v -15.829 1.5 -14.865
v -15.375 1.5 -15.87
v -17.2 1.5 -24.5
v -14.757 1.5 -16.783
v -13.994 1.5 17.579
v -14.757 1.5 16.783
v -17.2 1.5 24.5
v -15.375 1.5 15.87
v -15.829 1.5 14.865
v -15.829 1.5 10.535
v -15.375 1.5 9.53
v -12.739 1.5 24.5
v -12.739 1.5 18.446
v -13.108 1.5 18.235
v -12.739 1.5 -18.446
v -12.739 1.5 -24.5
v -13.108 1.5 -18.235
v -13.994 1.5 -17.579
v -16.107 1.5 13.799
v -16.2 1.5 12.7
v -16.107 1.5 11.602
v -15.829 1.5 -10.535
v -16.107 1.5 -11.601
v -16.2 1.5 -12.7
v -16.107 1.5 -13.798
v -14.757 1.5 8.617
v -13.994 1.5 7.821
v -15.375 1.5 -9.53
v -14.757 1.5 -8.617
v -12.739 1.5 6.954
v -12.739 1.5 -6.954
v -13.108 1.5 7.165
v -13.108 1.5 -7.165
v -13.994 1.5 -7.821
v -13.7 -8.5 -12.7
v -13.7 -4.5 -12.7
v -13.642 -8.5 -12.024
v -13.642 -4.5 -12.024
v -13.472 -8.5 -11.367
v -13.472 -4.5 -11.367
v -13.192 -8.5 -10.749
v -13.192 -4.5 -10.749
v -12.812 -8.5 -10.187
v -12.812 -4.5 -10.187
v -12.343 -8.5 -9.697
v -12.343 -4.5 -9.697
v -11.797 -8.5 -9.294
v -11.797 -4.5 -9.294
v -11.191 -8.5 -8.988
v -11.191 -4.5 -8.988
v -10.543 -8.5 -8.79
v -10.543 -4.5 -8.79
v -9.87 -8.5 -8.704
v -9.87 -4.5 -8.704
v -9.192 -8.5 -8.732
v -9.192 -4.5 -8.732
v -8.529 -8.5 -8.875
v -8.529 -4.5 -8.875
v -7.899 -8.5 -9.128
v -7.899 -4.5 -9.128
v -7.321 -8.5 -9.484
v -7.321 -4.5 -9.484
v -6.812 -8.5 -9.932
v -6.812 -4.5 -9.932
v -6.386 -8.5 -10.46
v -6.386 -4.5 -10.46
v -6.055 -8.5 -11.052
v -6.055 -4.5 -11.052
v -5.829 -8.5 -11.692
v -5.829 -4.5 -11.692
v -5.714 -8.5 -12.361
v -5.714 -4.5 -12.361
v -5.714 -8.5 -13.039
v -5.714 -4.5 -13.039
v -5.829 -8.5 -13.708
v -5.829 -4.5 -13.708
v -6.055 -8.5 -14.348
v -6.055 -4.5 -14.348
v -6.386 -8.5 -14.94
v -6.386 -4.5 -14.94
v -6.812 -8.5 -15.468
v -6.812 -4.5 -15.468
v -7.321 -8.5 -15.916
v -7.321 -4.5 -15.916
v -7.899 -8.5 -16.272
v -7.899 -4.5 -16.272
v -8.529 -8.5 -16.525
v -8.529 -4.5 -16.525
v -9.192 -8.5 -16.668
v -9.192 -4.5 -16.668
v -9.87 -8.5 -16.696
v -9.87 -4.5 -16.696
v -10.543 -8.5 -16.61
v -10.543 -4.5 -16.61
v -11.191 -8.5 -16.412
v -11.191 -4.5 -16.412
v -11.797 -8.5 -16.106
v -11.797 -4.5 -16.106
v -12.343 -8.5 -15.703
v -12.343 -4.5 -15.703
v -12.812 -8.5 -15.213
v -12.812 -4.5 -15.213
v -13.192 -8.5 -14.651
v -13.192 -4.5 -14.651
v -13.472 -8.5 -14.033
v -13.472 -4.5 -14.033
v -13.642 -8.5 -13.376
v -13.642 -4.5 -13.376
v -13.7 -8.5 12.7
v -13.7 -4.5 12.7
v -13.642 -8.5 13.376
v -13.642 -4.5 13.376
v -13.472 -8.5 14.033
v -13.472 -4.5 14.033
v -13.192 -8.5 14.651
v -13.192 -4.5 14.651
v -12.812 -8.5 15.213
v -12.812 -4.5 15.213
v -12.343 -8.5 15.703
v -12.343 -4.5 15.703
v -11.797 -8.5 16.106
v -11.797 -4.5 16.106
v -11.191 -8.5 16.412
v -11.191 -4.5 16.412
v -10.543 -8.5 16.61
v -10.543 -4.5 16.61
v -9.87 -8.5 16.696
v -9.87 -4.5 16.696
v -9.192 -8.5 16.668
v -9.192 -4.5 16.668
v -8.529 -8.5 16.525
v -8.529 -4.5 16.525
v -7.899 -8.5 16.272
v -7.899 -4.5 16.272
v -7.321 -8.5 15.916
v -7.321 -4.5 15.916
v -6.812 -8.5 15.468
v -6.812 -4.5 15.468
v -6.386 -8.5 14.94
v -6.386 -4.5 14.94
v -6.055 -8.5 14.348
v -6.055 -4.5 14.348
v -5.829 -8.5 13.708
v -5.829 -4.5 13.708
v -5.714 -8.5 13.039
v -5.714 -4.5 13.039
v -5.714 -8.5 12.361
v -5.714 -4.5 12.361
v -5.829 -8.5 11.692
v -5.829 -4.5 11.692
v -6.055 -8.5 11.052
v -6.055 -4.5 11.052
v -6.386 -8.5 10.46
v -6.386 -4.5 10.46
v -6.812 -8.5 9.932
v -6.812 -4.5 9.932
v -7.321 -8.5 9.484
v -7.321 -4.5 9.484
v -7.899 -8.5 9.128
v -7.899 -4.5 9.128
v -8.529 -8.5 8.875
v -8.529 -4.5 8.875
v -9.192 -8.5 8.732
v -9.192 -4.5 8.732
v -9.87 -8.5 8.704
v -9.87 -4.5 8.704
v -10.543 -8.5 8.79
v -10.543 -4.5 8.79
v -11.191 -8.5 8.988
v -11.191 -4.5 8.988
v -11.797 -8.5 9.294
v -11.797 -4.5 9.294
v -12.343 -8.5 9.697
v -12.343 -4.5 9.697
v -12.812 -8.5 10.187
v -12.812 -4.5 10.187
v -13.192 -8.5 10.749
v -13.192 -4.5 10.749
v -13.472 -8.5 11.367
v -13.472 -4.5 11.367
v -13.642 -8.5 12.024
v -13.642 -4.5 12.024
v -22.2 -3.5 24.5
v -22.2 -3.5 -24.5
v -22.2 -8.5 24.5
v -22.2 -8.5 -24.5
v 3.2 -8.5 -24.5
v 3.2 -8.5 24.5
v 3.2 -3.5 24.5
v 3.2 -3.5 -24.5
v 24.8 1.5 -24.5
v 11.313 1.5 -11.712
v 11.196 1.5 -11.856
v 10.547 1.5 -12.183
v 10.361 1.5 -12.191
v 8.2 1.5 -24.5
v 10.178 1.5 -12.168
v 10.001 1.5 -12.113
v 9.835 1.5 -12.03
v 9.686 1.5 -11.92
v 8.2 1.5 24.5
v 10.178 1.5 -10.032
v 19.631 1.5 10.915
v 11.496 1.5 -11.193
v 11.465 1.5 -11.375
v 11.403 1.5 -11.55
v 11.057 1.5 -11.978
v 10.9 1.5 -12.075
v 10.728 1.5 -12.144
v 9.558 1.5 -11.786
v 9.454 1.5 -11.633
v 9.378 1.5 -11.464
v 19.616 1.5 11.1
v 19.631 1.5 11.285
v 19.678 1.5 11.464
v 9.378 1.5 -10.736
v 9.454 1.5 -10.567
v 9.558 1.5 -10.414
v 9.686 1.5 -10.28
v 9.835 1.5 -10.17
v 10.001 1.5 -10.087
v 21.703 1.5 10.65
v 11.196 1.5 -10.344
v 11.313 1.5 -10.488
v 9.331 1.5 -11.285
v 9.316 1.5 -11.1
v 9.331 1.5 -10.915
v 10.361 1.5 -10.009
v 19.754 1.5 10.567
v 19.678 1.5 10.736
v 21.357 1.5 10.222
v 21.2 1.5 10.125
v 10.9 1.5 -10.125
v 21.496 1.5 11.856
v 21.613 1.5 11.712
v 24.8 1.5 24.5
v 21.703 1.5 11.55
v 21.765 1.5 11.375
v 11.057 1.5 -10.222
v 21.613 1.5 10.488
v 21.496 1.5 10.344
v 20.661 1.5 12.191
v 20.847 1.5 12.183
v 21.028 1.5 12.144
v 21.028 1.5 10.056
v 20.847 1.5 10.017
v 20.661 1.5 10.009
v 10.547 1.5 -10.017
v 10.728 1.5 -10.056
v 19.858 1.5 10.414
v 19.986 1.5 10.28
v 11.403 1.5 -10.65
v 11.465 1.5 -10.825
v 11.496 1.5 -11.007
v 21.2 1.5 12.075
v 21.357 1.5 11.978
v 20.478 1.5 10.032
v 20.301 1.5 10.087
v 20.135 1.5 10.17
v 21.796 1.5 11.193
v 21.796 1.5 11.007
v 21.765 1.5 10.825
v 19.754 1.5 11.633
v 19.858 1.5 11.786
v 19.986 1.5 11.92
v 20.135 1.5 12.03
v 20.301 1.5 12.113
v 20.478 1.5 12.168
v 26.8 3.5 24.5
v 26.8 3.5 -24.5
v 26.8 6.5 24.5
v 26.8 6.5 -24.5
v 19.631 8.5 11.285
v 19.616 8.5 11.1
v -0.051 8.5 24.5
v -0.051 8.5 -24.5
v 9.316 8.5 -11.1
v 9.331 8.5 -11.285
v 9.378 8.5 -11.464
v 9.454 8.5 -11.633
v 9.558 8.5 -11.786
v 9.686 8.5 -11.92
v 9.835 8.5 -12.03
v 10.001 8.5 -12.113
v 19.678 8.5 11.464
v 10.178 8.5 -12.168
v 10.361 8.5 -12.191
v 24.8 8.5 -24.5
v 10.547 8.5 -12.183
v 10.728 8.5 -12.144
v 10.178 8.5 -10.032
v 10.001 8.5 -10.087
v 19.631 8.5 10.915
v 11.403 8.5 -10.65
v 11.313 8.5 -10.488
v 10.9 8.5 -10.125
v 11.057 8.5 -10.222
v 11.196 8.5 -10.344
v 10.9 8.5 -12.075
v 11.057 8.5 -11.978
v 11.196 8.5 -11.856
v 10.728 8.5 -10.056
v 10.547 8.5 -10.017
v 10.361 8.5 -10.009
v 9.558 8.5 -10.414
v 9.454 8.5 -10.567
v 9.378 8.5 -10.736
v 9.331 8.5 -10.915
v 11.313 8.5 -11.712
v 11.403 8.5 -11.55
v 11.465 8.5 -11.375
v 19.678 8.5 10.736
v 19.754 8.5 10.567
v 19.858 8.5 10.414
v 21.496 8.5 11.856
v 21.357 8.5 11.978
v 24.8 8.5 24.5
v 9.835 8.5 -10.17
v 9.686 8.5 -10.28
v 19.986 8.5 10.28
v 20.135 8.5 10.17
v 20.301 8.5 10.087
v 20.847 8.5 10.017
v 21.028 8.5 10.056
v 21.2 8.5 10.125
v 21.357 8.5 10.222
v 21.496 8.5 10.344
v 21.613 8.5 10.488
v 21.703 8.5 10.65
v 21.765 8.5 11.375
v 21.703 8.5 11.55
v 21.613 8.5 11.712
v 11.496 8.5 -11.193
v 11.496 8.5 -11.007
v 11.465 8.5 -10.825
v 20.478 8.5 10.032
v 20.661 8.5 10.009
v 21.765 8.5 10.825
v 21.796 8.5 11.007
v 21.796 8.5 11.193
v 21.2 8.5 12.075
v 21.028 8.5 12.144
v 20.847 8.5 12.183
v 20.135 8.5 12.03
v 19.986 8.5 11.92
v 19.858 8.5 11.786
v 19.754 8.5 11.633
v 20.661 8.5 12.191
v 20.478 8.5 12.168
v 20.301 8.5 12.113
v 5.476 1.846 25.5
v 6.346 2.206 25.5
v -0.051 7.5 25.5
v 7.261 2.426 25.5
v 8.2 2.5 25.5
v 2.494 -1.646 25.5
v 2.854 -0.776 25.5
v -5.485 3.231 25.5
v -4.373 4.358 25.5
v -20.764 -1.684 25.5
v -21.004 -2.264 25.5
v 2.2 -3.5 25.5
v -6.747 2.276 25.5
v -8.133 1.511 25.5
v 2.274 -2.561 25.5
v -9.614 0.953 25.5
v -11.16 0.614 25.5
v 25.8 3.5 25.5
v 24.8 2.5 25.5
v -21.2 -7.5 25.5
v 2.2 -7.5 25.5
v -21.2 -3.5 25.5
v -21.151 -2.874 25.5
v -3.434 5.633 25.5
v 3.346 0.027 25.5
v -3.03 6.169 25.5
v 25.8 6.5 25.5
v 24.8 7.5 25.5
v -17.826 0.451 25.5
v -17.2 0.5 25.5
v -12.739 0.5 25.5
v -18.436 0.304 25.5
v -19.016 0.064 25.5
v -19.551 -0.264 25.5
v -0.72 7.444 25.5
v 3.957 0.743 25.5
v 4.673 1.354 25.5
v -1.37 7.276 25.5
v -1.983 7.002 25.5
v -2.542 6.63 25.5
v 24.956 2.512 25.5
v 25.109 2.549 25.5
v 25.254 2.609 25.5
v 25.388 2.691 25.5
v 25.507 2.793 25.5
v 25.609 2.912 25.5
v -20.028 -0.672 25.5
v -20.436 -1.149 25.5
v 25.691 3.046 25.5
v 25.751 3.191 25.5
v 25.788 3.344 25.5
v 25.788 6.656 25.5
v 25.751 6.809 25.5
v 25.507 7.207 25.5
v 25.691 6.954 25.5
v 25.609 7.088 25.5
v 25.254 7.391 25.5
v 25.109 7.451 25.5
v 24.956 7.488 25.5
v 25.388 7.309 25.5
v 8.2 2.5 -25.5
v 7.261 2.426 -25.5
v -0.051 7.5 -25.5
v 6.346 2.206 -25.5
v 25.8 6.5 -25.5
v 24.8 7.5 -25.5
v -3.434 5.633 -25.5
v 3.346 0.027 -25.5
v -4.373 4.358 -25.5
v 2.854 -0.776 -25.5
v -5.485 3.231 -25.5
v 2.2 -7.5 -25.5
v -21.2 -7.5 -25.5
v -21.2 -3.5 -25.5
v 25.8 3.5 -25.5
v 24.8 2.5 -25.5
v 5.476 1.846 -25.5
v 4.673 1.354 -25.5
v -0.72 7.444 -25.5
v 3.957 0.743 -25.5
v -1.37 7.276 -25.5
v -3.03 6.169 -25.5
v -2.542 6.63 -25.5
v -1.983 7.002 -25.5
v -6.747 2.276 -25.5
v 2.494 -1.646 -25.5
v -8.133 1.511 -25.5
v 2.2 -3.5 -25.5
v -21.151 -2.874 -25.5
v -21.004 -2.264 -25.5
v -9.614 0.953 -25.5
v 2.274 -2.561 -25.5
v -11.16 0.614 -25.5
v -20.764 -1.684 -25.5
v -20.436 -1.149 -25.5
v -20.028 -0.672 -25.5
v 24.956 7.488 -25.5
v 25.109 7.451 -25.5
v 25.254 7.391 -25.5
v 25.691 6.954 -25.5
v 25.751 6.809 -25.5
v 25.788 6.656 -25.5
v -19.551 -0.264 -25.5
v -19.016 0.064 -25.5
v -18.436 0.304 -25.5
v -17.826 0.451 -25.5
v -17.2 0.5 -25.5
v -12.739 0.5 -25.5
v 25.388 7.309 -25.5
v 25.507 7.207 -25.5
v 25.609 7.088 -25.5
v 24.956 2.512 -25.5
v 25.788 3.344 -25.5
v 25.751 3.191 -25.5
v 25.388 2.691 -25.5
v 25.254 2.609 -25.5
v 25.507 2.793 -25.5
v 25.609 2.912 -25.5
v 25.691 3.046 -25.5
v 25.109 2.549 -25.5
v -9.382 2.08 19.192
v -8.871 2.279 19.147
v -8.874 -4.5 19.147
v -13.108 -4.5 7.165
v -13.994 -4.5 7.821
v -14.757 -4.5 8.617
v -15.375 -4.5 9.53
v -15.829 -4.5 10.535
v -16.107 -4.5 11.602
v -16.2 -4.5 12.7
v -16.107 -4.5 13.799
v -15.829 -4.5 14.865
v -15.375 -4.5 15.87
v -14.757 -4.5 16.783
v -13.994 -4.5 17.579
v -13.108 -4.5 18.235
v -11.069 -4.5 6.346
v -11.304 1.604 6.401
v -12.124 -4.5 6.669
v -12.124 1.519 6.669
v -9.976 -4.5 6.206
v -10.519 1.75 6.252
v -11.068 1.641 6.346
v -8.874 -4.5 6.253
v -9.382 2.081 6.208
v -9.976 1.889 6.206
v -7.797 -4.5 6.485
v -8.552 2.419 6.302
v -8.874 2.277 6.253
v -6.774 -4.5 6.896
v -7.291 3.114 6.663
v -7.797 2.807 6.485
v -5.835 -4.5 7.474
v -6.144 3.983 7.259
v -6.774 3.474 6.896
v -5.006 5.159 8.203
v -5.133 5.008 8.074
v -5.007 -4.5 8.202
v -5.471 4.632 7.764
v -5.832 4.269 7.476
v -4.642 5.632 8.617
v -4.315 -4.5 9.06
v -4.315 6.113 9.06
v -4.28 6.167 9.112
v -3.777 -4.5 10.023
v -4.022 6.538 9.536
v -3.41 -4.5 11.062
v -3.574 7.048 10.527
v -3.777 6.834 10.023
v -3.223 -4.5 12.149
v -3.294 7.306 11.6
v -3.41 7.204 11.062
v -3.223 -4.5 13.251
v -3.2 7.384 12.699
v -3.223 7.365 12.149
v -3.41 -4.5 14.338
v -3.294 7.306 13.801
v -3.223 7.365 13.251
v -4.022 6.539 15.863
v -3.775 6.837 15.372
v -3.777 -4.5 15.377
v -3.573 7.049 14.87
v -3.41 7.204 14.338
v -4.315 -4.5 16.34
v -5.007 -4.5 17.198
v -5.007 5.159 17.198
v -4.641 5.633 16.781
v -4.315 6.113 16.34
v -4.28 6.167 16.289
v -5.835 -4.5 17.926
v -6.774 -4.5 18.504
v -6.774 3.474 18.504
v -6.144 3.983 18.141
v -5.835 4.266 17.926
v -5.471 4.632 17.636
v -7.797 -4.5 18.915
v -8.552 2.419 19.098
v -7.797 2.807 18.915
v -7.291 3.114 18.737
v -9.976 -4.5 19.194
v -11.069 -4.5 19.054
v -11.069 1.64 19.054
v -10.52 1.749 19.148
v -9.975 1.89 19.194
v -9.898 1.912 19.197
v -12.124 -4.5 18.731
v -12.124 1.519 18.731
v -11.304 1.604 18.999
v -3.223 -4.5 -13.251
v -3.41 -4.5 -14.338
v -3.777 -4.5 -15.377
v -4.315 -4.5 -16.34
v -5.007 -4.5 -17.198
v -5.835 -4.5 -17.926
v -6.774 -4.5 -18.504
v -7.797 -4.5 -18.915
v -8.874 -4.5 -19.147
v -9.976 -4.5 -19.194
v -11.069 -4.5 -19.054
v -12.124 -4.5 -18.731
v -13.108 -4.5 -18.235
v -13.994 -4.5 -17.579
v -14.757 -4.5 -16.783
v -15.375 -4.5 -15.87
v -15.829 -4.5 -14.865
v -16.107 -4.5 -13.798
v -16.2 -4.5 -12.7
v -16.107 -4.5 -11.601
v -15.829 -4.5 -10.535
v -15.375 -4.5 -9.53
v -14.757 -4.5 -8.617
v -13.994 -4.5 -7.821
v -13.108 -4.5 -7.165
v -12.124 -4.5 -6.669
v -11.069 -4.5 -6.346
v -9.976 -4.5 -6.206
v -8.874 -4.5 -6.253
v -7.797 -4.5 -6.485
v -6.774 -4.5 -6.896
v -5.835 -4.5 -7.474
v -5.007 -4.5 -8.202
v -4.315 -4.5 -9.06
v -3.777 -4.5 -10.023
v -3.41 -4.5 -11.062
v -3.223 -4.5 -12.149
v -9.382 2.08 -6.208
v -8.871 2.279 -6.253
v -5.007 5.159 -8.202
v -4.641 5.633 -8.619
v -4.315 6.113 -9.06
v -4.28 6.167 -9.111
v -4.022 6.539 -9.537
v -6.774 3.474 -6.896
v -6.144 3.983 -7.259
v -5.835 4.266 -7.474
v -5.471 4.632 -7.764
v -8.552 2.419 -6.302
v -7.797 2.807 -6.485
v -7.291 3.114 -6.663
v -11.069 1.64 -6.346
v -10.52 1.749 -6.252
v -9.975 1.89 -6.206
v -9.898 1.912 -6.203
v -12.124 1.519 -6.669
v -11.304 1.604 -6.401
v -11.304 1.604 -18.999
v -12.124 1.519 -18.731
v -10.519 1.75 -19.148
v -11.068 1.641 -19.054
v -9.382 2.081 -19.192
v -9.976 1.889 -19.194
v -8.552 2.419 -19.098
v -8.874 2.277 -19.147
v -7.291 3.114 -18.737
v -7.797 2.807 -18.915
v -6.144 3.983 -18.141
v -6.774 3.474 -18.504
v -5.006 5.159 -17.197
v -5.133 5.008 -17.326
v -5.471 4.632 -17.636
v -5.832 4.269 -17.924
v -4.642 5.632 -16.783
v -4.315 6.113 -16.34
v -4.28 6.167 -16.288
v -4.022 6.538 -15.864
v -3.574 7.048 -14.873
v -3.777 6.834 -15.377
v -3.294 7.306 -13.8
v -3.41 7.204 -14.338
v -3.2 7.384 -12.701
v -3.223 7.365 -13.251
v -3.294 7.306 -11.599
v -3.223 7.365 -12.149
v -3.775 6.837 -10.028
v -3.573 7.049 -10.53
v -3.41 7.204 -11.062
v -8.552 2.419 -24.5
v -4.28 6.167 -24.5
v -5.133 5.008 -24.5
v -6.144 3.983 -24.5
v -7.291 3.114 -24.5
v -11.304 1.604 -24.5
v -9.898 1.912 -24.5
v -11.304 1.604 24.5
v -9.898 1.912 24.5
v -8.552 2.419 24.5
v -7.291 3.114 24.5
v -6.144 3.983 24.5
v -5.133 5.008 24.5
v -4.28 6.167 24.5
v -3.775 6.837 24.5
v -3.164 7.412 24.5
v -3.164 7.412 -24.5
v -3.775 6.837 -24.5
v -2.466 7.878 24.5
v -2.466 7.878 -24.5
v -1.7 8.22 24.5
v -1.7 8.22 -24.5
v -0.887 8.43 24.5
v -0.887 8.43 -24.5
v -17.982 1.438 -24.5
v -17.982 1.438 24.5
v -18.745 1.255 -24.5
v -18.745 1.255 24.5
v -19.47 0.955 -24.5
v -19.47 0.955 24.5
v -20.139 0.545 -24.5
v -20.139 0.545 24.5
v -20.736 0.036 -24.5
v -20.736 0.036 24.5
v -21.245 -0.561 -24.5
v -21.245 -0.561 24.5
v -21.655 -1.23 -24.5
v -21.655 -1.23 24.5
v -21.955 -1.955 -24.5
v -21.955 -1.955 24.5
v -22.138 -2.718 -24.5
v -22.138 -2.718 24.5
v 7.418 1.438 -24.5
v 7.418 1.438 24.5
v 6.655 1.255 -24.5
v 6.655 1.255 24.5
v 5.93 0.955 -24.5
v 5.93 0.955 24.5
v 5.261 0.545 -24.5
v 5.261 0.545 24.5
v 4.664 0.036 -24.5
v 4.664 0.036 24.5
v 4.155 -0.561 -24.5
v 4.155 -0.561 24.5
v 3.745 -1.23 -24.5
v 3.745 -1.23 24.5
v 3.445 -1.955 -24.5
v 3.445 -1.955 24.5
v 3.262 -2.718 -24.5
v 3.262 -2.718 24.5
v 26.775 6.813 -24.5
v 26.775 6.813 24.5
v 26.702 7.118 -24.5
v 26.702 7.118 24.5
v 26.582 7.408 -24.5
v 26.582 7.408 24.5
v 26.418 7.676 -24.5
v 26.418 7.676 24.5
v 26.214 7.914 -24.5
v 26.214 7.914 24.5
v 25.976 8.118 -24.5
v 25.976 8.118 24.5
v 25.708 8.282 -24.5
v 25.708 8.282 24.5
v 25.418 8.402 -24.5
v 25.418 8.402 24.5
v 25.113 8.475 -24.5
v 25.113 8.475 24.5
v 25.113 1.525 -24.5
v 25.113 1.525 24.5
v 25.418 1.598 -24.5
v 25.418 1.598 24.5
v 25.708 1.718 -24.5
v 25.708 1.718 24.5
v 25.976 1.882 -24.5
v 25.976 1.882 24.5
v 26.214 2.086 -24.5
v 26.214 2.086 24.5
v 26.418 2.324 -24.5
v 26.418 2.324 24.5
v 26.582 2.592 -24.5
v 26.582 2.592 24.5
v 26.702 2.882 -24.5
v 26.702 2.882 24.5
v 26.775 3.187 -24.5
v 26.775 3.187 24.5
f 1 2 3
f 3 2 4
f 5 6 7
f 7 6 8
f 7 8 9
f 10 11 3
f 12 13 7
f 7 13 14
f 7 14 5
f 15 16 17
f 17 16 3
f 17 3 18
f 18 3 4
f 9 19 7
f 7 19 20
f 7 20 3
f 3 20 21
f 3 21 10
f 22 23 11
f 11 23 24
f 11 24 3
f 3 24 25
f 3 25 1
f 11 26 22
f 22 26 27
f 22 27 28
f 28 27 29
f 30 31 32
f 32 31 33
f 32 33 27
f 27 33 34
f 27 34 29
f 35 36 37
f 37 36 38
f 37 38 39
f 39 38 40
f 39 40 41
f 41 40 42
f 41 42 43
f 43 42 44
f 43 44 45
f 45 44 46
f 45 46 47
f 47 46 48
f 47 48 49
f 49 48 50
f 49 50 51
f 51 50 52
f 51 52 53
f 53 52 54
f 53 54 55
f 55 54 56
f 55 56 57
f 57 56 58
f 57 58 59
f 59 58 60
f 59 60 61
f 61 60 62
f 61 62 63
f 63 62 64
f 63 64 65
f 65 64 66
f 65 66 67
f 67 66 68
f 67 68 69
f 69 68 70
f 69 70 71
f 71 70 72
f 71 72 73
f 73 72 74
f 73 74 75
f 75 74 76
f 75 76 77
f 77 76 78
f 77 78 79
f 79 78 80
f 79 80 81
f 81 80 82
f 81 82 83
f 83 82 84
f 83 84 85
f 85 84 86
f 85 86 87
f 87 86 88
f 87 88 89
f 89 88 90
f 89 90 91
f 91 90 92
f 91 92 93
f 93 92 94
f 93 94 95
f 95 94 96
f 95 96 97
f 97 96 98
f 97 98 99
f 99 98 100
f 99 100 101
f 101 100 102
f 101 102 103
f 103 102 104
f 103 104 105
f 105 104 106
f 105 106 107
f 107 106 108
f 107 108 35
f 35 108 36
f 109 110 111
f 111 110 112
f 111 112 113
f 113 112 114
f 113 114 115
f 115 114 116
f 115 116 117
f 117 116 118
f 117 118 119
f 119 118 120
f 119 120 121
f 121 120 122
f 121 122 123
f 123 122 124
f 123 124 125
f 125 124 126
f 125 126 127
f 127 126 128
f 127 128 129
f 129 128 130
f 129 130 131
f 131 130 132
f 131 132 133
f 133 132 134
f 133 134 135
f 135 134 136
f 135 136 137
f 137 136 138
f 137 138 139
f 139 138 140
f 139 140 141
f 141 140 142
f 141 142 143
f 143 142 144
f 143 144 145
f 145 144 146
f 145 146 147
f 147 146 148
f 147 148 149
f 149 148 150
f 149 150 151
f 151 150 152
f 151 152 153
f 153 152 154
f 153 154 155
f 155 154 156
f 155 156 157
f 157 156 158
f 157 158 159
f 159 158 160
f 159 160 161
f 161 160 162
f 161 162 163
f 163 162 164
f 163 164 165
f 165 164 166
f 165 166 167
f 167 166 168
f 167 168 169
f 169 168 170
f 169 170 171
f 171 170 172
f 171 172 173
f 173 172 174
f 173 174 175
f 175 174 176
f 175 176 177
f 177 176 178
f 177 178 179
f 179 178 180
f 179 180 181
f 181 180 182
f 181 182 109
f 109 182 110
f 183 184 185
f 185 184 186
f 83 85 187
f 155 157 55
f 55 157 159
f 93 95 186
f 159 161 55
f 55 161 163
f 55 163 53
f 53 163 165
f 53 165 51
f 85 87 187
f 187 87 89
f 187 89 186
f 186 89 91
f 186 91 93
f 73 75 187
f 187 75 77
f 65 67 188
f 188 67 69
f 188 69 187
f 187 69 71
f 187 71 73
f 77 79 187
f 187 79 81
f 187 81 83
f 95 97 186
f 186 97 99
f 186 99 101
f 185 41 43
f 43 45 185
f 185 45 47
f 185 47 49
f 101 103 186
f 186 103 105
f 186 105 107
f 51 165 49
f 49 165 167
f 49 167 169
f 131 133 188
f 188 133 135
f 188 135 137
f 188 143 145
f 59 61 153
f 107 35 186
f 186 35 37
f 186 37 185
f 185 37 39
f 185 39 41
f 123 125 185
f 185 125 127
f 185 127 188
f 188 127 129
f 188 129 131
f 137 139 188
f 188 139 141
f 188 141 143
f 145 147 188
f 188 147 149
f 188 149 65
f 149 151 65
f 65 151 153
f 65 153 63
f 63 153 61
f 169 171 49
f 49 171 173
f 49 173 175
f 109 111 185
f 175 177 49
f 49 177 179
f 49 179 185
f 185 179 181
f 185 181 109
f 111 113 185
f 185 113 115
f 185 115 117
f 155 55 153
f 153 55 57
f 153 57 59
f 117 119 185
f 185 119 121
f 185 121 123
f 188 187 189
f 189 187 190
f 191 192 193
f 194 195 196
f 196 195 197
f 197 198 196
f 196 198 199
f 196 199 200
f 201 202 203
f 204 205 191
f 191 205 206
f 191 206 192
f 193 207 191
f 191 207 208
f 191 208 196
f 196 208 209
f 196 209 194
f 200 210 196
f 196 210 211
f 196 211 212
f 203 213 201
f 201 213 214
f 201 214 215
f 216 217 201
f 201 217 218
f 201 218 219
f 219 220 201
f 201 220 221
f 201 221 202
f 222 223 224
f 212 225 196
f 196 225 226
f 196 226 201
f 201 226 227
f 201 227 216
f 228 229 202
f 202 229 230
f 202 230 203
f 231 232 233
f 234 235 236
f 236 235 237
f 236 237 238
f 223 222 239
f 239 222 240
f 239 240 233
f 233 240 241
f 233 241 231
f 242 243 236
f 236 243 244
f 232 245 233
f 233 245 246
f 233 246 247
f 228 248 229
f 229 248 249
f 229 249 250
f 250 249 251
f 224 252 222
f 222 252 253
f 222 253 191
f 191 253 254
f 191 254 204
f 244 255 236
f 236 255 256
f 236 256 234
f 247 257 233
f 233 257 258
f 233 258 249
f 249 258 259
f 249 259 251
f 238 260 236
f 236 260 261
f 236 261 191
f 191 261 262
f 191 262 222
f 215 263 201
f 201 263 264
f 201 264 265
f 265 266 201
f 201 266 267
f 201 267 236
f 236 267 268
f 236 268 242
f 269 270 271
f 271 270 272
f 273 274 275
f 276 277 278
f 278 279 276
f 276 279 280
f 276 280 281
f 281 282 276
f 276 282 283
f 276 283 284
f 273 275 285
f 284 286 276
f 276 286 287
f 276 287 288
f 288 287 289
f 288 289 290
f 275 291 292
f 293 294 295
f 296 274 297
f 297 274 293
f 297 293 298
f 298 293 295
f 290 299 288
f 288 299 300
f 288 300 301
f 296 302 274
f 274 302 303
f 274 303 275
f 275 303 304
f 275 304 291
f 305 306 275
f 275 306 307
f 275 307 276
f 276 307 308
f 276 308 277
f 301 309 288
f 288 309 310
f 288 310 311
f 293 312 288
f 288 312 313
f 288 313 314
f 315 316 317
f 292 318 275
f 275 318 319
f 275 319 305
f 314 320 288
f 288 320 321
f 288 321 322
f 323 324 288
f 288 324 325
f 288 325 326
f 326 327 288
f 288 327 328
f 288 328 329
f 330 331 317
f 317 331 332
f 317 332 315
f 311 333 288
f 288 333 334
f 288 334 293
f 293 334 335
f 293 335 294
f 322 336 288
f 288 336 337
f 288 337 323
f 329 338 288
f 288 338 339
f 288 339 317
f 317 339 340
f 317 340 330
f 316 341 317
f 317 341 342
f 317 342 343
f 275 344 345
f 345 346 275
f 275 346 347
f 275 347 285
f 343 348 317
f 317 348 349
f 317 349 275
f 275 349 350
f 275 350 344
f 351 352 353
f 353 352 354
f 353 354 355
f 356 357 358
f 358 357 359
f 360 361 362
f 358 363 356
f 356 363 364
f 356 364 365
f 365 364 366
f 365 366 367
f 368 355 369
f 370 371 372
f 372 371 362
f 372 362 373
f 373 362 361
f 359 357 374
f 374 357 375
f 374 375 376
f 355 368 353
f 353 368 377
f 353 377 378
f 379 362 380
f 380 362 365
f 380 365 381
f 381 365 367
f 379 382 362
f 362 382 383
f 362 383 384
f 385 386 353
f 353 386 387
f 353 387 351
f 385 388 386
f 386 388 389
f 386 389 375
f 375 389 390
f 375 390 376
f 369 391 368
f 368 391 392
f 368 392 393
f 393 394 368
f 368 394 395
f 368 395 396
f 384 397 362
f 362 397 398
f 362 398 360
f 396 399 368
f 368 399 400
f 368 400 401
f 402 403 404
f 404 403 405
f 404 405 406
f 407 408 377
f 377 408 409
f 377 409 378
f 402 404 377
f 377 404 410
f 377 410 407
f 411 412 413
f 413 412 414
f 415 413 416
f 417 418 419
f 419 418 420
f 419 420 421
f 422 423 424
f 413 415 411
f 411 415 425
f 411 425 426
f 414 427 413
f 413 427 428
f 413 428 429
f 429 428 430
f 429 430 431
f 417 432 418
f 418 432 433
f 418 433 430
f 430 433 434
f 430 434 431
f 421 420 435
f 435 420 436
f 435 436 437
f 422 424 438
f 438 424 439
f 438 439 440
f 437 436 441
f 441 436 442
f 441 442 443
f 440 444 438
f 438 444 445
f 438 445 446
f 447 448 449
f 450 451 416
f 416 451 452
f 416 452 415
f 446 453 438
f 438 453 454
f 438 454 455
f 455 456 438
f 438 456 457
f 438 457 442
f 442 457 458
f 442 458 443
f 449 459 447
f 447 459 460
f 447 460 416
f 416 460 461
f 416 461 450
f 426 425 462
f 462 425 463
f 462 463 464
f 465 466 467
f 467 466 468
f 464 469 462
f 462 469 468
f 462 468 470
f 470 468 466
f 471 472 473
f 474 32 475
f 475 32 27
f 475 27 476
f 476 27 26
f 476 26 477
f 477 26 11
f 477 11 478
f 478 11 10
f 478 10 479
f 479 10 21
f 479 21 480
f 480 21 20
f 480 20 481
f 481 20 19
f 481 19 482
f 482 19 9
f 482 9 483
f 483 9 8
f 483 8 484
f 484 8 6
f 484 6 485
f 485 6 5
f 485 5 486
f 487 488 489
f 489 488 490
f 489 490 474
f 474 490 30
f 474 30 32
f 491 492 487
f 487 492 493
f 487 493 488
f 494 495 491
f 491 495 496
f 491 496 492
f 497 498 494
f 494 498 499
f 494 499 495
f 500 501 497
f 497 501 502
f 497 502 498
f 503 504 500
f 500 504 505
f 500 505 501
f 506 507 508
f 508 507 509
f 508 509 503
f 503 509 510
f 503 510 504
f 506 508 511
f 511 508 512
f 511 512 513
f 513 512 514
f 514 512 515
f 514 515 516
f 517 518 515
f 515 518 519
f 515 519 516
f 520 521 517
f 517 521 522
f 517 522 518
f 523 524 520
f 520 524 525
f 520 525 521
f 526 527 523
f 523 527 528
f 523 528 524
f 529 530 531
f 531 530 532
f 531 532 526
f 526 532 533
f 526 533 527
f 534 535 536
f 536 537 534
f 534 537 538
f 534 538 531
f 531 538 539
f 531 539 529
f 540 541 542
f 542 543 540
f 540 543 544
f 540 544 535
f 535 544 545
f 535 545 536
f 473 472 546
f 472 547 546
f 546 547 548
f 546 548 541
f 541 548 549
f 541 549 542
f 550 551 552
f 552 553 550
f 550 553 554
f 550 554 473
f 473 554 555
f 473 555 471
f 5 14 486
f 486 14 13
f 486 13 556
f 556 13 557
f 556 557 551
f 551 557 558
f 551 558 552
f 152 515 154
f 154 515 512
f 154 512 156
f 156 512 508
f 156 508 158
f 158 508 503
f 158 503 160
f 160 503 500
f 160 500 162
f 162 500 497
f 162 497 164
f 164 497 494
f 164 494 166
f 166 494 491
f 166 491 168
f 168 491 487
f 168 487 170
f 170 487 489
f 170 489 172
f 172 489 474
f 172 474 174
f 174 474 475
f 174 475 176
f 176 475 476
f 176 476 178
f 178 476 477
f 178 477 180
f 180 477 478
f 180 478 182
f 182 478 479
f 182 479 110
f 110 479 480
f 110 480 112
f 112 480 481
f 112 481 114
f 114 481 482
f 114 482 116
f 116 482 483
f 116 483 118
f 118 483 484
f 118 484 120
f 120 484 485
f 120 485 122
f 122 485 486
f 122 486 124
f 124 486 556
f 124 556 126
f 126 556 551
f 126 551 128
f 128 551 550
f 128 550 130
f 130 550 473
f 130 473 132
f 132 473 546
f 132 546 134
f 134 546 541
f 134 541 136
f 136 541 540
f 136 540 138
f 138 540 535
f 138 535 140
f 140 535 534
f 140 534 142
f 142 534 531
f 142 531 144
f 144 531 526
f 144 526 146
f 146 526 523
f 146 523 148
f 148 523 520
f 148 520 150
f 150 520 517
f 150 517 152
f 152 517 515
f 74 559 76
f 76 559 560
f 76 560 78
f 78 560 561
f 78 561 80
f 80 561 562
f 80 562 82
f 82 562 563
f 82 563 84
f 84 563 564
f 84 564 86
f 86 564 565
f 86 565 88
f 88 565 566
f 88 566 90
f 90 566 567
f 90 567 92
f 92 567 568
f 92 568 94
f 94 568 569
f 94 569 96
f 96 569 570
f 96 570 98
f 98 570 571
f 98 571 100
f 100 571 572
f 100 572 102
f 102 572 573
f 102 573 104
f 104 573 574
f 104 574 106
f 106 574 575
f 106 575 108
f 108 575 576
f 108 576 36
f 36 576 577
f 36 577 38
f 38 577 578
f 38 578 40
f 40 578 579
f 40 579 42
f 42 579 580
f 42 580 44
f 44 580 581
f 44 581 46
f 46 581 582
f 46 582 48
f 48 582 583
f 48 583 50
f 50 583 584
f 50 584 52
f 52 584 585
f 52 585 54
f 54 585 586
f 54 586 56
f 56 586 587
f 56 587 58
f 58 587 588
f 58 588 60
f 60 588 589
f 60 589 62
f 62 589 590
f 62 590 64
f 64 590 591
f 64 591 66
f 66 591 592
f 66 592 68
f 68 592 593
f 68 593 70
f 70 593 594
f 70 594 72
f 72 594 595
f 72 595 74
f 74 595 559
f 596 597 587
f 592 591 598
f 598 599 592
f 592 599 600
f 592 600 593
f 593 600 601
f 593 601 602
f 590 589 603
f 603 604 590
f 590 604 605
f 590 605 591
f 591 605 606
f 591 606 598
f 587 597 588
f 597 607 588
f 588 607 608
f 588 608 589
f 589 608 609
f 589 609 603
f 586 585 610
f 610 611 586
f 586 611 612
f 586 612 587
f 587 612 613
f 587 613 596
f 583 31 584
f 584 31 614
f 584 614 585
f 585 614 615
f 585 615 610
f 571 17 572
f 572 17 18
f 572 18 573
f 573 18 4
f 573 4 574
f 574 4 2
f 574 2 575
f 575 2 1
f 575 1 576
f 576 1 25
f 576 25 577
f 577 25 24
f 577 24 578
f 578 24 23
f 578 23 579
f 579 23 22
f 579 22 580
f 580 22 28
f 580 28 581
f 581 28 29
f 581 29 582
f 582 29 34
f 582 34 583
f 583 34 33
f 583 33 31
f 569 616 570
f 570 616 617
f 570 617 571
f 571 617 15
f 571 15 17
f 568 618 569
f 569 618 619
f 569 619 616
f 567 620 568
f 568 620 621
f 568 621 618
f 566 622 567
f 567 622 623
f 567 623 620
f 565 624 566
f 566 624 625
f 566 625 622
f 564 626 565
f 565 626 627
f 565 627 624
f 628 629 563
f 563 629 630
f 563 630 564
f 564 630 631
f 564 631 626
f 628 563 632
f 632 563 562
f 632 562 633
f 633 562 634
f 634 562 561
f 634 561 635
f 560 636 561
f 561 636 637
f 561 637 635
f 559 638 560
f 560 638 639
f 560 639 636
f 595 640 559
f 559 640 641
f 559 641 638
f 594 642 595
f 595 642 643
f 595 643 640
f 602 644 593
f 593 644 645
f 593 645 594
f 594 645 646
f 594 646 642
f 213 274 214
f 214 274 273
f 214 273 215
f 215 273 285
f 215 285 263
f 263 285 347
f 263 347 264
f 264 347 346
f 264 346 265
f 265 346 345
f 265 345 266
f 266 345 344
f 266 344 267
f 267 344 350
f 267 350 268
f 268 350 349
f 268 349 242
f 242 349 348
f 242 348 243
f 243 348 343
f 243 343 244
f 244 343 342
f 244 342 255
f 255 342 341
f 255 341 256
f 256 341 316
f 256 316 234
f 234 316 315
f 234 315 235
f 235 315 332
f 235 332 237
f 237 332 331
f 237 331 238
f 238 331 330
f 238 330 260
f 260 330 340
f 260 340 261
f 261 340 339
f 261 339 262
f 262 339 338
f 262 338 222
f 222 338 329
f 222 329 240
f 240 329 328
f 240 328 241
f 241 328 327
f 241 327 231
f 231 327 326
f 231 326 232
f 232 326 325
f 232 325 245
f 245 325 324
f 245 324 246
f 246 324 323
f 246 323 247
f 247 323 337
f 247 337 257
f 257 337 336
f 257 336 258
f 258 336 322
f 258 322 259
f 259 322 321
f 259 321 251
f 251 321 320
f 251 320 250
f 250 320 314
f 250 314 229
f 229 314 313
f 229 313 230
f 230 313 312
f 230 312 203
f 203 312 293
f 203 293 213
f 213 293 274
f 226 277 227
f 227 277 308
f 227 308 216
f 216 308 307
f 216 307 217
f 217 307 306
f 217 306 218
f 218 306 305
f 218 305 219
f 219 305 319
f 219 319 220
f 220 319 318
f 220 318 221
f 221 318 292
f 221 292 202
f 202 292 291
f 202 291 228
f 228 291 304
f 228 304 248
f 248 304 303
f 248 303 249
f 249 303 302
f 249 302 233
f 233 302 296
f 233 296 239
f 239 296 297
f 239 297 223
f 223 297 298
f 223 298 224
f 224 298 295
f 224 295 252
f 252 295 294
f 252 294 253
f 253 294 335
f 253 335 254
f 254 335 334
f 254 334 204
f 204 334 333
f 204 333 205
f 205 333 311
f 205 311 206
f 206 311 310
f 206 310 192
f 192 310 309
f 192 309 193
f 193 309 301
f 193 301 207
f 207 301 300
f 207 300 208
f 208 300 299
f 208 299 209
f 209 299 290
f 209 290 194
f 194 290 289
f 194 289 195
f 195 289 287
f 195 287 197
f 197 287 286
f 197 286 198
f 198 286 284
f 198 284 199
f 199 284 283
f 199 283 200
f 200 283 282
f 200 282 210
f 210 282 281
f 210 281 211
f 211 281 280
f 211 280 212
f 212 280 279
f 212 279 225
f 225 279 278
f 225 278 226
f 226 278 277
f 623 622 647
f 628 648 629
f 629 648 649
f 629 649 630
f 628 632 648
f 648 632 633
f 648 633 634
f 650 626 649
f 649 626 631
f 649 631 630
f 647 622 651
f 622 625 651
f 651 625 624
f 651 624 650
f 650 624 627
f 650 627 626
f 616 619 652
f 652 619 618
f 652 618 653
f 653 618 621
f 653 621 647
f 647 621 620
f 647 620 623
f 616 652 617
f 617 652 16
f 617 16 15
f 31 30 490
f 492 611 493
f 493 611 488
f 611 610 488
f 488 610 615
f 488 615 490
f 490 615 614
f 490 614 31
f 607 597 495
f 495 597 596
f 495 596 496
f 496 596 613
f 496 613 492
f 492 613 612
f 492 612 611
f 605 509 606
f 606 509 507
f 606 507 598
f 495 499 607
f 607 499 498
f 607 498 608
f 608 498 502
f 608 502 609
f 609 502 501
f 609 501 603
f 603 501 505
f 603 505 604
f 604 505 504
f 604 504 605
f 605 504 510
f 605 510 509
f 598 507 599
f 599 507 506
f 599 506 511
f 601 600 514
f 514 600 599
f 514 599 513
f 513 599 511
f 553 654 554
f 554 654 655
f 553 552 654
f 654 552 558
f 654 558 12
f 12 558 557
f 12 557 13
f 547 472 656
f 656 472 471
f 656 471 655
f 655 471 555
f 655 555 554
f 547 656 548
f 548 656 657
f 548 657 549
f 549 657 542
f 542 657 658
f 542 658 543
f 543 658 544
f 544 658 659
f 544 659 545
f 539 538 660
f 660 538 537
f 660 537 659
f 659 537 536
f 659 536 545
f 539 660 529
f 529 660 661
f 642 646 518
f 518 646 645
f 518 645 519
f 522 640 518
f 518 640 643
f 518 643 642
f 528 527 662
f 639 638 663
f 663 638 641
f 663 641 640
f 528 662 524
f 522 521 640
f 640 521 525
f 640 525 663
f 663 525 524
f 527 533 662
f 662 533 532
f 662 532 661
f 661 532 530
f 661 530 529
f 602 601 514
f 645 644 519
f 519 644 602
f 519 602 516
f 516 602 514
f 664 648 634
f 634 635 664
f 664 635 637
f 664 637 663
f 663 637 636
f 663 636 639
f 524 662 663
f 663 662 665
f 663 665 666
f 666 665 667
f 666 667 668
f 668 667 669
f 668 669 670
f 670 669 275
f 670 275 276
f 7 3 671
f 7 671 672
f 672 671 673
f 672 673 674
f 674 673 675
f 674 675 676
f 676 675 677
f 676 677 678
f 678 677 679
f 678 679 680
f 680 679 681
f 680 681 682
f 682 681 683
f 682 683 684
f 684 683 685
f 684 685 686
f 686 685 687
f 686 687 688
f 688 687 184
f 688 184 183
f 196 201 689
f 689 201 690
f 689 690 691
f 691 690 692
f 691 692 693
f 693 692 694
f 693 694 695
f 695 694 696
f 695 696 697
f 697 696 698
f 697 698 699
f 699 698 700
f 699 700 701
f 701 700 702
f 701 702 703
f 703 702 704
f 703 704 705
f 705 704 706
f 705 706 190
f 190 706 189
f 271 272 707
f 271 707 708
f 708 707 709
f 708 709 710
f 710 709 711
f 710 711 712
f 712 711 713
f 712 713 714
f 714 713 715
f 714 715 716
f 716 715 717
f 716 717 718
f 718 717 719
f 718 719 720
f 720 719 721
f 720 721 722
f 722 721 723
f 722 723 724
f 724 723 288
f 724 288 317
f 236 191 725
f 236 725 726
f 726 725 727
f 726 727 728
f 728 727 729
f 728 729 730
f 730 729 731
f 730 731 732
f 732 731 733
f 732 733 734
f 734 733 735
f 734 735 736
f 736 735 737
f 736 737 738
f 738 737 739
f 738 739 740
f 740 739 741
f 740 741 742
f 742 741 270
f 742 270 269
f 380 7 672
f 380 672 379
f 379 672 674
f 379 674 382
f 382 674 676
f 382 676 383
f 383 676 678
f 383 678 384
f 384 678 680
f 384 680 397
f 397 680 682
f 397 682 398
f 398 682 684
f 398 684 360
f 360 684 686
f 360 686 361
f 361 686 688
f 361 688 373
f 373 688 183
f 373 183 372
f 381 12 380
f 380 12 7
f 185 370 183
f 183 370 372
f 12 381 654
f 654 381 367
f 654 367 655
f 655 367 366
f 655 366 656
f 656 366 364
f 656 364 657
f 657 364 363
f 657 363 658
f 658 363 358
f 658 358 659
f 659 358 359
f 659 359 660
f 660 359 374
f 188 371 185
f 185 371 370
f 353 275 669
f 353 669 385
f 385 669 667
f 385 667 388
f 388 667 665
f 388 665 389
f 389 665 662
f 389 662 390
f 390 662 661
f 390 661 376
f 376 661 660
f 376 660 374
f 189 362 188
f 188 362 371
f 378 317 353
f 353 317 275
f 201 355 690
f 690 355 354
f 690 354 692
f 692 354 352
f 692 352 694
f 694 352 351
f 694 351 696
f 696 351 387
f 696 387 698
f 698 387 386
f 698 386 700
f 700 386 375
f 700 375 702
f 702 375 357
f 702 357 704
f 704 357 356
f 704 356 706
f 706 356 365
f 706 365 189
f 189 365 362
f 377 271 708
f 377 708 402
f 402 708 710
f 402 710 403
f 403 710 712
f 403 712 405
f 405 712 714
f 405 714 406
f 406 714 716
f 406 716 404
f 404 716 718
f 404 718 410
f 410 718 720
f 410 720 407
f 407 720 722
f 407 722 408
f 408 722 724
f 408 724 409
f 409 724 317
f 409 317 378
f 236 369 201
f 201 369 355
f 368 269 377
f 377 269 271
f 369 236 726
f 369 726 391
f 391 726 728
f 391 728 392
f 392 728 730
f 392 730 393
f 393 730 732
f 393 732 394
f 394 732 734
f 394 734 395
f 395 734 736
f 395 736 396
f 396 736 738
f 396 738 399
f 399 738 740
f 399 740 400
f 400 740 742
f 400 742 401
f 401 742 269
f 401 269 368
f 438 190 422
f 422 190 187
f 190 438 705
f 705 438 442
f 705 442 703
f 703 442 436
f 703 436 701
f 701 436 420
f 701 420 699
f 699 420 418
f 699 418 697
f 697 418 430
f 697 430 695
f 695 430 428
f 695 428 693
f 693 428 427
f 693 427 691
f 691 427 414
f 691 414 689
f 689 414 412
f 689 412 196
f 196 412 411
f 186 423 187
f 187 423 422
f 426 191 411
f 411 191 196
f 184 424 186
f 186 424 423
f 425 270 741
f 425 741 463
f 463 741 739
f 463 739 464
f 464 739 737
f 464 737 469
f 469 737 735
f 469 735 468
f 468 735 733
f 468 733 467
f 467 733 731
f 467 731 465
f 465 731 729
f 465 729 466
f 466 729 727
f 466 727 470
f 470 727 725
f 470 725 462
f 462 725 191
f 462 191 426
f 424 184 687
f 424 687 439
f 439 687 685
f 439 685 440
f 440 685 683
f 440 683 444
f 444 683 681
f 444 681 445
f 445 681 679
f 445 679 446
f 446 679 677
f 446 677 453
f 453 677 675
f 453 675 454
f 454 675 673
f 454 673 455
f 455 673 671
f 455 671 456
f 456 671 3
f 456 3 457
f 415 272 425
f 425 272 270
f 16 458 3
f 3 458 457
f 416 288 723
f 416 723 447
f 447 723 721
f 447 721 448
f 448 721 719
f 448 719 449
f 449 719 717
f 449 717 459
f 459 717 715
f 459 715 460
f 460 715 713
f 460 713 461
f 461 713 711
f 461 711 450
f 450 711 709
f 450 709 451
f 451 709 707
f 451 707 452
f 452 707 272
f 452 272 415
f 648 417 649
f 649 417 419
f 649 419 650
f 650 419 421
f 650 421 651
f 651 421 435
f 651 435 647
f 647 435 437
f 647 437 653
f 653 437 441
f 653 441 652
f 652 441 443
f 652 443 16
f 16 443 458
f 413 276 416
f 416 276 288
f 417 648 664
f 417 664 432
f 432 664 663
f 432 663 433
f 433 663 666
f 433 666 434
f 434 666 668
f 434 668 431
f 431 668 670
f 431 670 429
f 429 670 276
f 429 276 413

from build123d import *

# Parameters (mm, degrees)
BOSS_EXTRUDE1_DEPTH = 25.5
SKETCH3_R           = 4
CUT_EXTRUDE1_DEPTH  = 39.320882036
SKETCH3_4_R         = 6.5
SKETCH3_4_R_2       = 4
CUT_EXTRUDE2_DEPTH  = 6
SKETCH9_R           = 1.0922
CUT_EXTRUDE3_DEPTH  = 41.712283159
FILLET1_R           = 10
FILLET2_R           = 5
FILLET4_R           = 2
CHAMFER1_SIZE       = 1


with BuildPart() as part:
    # Sketch1 → Boss-Extrude1 (new, symmetric)
    with BuildSketch(Plane.XY):
        Polygon((-22.2, -8.5), (3.2, -8.5), (3.2, 1.5), (26.8, 1.5), (26.8, 8.5), (-3.2, 8.5), (-3.2, 1.5), (-22.2, 1.5), align=None)
    extrude(amount=BOSS_EXTRUDE1_DEPTH, both=True)

    # Sketch3 → Cut-Extrude1 (cut, through all)
    with BuildSketch(Plane(origin=(0, 1.5, 0), x_dir=(1, 0, 0), z_dir=(0, 1, 0))):
        with Locations(Location((-9.7, -12.7, 0), (0, 0, 180))):
            Circle(SKETCH3_R)
    cut_extrude1 = extrude(amount=-CUT_EXTRUDE1_DEPTH, mode=Mode.SUBTRACT)

    # Sketch3<4> → Cut-Extrude2 (cut)
    with BuildSketch(Plane(origin=(0, 1.5, 0), x_dir=(1, 0, 0), z_dir=(0, 1, 0))):
        with Locations(Location((-9.7, -12.7, 0), (0, 0, 180))):
            Circle(SKETCH3_4_R)
        with Locations(Location((-9.7, -12.7, 0), (0, 0, 180))):
            Circle(SKETCH3_4_R_2, mode=Mode.SUBTRACT)
    cut_extrude2 = extrude(amount=-CUT_EXTRUDE2_DEPTH, mode=Mode.SUBTRACT)

    # Mirror1: Cut-Extrude1, Cut-Extrude2 across plane
    add(cut_extrude1.mirror(Plane.XY), mode=Mode.SUBTRACT)
    add(cut_extrude2.mirror(Plane.XY), mode=Mode.SUBTRACT)

    # Sketch9 → Cut-Extrude3 (cut, through all)
    with BuildSketch(Plane(origin=(0, 8.5, 0), x_dir=(1, 0, 0), z_dir=(0, 1, 0))):
        with Locations(Location((10.4078, 11.1, 0), (0, 0, 180))):
            Circle(SKETCH9_R)
        with Locations(Location((20.7078, -11.1, 0), (0, 0, 180))):
            Circle(SKETCH9_R)
    extrude(amount=-CUT_EXTRUDE3_DEPTH, mode=Mode.SUBTRACT)

    # Fillet1
    # the kernel refuses this fillet: 10 mm, written as the material it adds along each edge
    with BuildSketch(Plane(origin=(-3.2, 1.5, 25.5), x_dir=(0, 1, 0), z_dir=(0, 0, -1))) as fillet1_piece_1_section:
        with BuildLine():
            CenterArc((10, -9.539392014), FILLET1_R, 107.457603124, 72.542396876)
            Line((0, -9.539392014), (0, 0))
            Line((0, 0), (7, 0))
        make_face()
    fillet1_piece_1 = extrude(amount=12.8, mode=Mode.PRIVATE)
    fillet1_piece_1 = fillet1_piece_1 - Plane(origin=(-9.7, 1.5, 12.7), x_dir=(-1, 0, 0), z_dir=(0, 1, 0)) * Cylinder(6.5, 64, mode=Mode.PRIVATE)
    add(fillet1_piece_1)
    with BuildSketch(Plane(origin=(-3.2, 1.5, -12.700000035), x_dir=(0, 1, 0), z_dir=(0, 0, -1))) as fillet1_piece_2_section:
        with BuildLine():
            CenterArc((10, -9.539392014), FILLET1_R, 107.457603124, 72.542396876)
            Line((0, -9.539392014), (0, 0))
            Line((0, 0), (7, 0))
        make_face()
    fillet1_piece_2 = extrude(amount=12.799999965, mode=Mode.PRIVATE)
    fillet1_piece_2 = fillet1_piece_2 - Plane(origin=(-9.7, 1.5, -12.7), x_dir=(-1, 0, 0), z_dir=(0, 1, 0)) * Cylinder(6.5, 64, mode=Mode.PRIVATE)
    add(fillet1_piece_2)
    with BuildSketch(Plane(origin=(-3.2, 1.5, 12.7), x_dir=(0, 1, 0), z_dir=(0, 0, -1))) as fillet1_piece_3_section:
        with BuildLine():
            CenterArc((10, -9.539392014), FILLET1_R, 107.457603124, 72.542396876)
            Line((0, -9.539392014), (0, 0))
            Line((0, 0), (7, 0))
        make_face()
    fillet1_piece_3 = extrude(amount=25.400000035, mode=Mode.PRIVATE)
    fillet1_piece_3 = fillet1_piece_3 - Plane(origin=(-9.7, 1.5, -12.7), x_dir=(-1, 0, 0), z_dir=(0, 1, 0)) * Cylinder(6.5, 89, mode=Mode.PRIVATE)
    fillet1_piece_3 = fillet1_piece_3 - Plane(origin=(-9.7, 1.5, 12.7), x_dir=(-1, 0, 0), z_dir=(0, 1, 0)) * Cylinder(6.5, 89, mode=Mode.PRIVATE)
    add(fillet1_piece_3)

    # Fillet2
    # the kernel refuses this fillet: 5 mm, written as the material it adds along each edge
    with BuildSketch(Plane(origin=(3.2, 1.5, -25.5), x_dir=(0, -1, 0), z_dir=(0, 0, 1))) as fillet2_piece_1:
        with BuildLine():
            CenterArc((FILLET2_R, FILLET2_R), FILLET2_R, 180, 90)
            Line((0, FILLET2_R), (0, 0))
            Line((0, 0), (FILLET2_R, 0))
        make_face()
    extrude(amount=51)
    # the kernel refuses this fillet: 5 mm, written as the material it takes off along each edge
    with BuildSketch(Plane(origin=(-3.2, 8.5, -33.372963816), x_dir=(1, 0, 0), z_dir=(0, 0, 1))) as fillet2_2_piece_1:
        with BuildLine():
            CenterArc((3.149185526, -5), FILLET2_R, 90, 57.769047364)
            ThreePointArc((-1.080340321, -2.333333333), (-0.464861443, -1.201534828), (0, 0))
            Line((0, 0), (3.149185526, 0))
        make_face()
    extrude(amount=20.67296378, mode=Mode.SUBTRACT)
    with BuildSketch(Plane(origin=(-22.2, 1.5, 38), x_dir=(1, 0, 0), z_dir=(0, 0, -1))) as fillet2_2_piece_2:
        with BuildLine():
            CenterArc((FILLET2_R, FILLET2_R), FILLET2_R, 180, 90)
            Line((0, FILLET2_R), (0, 0))
            Line((0, 0), (FILLET2_R, 0))
        make_face()
    extrude(amount=76, mode=Mode.SUBTRACT)
    with BuildSketch(Plane(origin=(-3.2, 8.5, -12.700000035), x_dir=(-0.42015348282673015, -0.9074530571156663, 0), z_dir=(0, 0, 1))) as fillet2_2_piece_3:
        with BuildLine():
            CenterArc((3.214124019, 4.958505447), FILLET2_R, 204.84427788, 57.769047364)
            Line((-1.323141267, 2.857738033), (0, 0))
            ThreePointArc((0, 0), (1.285649607, 0.082989105), (2.571299215, 0))
        make_face()
    extrude(amount=25.400000035, mode=Mode.SUBTRACT)
    with BuildSketch(Plane(origin=(-3.2, 8.5, 12.7), x_dir=(1, 0, 0), z_dir=(0, 0, 1))) as fillet2_2_piece_4:
        with BuildLine():
            CenterArc((3.149185526, -5), FILLET2_R, 90, 57.769047364)
            ThreePointArc((-1.080340321, -2.333333333), (-0.464861443, -1.201534828), (0, 0))
            Line((0, 0), (3.149185526, 0))
        make_face()
    extrude(amount=20.672963816, mode=Mode.SUBTRACT)

    # Fillet4
    fillet4_edges = [part.edges().sort_by_distance(p)[0] for p in [
        (26.8, 8.5, 0),
        (26.8, 1.5, 0),
    ]]
    fillet(fillet4_edges, radius=FILLET4_R)

    # Chamfer1
    chamfer1_edges = [part.edges().sort_by_distance(p)[0] for p in [
        (12.374592763, 8.5, 25.5),
        (12.374592763, 8.5, -25.5),
        (26.8, 5, -25.5),
        (26.214213562, 2.085786438, -25.5),
        (26.214213562, 7.914213562, -25.5),
        (26.8, 5, 25.5),
        (26.214213562, 2.085786438, 25.5),
        (26.214213562, 7.914213562, 25.5),
        (3.2, -6, -25.5),
        (-9.5, -8.5, -25.5),
        (3.2, -6, 25.5),
        (-14.969696007, 1.5, -25.5),
        (-14.969696007, 1.5, 25.5),
        (-7.908933099, 2.744049642, -25.5),
        (-7.908933099, 2.744049642, 25.5),
        (-22.2, -6, 25.5),
        (16.5, 1.5, 25.5),
        (-20.735533906, 0.035533906, 25.5),
        (-2.466043931, 7.877975179, 25.5),
        (-22.2, -6, -25.5),
        (16.5, 1.5, -25.5),
        (-20.735533906, 0.035533906, -25.5),
        (-2.466043931, 7.877975179, -25.5),
        (4.664466094, 0.035533906, -25.5),
        (4.664466094, 0.035533906, 25.5),
        (-9.5, -8.5, 25.5),
    ]]
    chamfer(chamfer1_edges, length=CHAMFER1_SIZE)


solid = part.part
